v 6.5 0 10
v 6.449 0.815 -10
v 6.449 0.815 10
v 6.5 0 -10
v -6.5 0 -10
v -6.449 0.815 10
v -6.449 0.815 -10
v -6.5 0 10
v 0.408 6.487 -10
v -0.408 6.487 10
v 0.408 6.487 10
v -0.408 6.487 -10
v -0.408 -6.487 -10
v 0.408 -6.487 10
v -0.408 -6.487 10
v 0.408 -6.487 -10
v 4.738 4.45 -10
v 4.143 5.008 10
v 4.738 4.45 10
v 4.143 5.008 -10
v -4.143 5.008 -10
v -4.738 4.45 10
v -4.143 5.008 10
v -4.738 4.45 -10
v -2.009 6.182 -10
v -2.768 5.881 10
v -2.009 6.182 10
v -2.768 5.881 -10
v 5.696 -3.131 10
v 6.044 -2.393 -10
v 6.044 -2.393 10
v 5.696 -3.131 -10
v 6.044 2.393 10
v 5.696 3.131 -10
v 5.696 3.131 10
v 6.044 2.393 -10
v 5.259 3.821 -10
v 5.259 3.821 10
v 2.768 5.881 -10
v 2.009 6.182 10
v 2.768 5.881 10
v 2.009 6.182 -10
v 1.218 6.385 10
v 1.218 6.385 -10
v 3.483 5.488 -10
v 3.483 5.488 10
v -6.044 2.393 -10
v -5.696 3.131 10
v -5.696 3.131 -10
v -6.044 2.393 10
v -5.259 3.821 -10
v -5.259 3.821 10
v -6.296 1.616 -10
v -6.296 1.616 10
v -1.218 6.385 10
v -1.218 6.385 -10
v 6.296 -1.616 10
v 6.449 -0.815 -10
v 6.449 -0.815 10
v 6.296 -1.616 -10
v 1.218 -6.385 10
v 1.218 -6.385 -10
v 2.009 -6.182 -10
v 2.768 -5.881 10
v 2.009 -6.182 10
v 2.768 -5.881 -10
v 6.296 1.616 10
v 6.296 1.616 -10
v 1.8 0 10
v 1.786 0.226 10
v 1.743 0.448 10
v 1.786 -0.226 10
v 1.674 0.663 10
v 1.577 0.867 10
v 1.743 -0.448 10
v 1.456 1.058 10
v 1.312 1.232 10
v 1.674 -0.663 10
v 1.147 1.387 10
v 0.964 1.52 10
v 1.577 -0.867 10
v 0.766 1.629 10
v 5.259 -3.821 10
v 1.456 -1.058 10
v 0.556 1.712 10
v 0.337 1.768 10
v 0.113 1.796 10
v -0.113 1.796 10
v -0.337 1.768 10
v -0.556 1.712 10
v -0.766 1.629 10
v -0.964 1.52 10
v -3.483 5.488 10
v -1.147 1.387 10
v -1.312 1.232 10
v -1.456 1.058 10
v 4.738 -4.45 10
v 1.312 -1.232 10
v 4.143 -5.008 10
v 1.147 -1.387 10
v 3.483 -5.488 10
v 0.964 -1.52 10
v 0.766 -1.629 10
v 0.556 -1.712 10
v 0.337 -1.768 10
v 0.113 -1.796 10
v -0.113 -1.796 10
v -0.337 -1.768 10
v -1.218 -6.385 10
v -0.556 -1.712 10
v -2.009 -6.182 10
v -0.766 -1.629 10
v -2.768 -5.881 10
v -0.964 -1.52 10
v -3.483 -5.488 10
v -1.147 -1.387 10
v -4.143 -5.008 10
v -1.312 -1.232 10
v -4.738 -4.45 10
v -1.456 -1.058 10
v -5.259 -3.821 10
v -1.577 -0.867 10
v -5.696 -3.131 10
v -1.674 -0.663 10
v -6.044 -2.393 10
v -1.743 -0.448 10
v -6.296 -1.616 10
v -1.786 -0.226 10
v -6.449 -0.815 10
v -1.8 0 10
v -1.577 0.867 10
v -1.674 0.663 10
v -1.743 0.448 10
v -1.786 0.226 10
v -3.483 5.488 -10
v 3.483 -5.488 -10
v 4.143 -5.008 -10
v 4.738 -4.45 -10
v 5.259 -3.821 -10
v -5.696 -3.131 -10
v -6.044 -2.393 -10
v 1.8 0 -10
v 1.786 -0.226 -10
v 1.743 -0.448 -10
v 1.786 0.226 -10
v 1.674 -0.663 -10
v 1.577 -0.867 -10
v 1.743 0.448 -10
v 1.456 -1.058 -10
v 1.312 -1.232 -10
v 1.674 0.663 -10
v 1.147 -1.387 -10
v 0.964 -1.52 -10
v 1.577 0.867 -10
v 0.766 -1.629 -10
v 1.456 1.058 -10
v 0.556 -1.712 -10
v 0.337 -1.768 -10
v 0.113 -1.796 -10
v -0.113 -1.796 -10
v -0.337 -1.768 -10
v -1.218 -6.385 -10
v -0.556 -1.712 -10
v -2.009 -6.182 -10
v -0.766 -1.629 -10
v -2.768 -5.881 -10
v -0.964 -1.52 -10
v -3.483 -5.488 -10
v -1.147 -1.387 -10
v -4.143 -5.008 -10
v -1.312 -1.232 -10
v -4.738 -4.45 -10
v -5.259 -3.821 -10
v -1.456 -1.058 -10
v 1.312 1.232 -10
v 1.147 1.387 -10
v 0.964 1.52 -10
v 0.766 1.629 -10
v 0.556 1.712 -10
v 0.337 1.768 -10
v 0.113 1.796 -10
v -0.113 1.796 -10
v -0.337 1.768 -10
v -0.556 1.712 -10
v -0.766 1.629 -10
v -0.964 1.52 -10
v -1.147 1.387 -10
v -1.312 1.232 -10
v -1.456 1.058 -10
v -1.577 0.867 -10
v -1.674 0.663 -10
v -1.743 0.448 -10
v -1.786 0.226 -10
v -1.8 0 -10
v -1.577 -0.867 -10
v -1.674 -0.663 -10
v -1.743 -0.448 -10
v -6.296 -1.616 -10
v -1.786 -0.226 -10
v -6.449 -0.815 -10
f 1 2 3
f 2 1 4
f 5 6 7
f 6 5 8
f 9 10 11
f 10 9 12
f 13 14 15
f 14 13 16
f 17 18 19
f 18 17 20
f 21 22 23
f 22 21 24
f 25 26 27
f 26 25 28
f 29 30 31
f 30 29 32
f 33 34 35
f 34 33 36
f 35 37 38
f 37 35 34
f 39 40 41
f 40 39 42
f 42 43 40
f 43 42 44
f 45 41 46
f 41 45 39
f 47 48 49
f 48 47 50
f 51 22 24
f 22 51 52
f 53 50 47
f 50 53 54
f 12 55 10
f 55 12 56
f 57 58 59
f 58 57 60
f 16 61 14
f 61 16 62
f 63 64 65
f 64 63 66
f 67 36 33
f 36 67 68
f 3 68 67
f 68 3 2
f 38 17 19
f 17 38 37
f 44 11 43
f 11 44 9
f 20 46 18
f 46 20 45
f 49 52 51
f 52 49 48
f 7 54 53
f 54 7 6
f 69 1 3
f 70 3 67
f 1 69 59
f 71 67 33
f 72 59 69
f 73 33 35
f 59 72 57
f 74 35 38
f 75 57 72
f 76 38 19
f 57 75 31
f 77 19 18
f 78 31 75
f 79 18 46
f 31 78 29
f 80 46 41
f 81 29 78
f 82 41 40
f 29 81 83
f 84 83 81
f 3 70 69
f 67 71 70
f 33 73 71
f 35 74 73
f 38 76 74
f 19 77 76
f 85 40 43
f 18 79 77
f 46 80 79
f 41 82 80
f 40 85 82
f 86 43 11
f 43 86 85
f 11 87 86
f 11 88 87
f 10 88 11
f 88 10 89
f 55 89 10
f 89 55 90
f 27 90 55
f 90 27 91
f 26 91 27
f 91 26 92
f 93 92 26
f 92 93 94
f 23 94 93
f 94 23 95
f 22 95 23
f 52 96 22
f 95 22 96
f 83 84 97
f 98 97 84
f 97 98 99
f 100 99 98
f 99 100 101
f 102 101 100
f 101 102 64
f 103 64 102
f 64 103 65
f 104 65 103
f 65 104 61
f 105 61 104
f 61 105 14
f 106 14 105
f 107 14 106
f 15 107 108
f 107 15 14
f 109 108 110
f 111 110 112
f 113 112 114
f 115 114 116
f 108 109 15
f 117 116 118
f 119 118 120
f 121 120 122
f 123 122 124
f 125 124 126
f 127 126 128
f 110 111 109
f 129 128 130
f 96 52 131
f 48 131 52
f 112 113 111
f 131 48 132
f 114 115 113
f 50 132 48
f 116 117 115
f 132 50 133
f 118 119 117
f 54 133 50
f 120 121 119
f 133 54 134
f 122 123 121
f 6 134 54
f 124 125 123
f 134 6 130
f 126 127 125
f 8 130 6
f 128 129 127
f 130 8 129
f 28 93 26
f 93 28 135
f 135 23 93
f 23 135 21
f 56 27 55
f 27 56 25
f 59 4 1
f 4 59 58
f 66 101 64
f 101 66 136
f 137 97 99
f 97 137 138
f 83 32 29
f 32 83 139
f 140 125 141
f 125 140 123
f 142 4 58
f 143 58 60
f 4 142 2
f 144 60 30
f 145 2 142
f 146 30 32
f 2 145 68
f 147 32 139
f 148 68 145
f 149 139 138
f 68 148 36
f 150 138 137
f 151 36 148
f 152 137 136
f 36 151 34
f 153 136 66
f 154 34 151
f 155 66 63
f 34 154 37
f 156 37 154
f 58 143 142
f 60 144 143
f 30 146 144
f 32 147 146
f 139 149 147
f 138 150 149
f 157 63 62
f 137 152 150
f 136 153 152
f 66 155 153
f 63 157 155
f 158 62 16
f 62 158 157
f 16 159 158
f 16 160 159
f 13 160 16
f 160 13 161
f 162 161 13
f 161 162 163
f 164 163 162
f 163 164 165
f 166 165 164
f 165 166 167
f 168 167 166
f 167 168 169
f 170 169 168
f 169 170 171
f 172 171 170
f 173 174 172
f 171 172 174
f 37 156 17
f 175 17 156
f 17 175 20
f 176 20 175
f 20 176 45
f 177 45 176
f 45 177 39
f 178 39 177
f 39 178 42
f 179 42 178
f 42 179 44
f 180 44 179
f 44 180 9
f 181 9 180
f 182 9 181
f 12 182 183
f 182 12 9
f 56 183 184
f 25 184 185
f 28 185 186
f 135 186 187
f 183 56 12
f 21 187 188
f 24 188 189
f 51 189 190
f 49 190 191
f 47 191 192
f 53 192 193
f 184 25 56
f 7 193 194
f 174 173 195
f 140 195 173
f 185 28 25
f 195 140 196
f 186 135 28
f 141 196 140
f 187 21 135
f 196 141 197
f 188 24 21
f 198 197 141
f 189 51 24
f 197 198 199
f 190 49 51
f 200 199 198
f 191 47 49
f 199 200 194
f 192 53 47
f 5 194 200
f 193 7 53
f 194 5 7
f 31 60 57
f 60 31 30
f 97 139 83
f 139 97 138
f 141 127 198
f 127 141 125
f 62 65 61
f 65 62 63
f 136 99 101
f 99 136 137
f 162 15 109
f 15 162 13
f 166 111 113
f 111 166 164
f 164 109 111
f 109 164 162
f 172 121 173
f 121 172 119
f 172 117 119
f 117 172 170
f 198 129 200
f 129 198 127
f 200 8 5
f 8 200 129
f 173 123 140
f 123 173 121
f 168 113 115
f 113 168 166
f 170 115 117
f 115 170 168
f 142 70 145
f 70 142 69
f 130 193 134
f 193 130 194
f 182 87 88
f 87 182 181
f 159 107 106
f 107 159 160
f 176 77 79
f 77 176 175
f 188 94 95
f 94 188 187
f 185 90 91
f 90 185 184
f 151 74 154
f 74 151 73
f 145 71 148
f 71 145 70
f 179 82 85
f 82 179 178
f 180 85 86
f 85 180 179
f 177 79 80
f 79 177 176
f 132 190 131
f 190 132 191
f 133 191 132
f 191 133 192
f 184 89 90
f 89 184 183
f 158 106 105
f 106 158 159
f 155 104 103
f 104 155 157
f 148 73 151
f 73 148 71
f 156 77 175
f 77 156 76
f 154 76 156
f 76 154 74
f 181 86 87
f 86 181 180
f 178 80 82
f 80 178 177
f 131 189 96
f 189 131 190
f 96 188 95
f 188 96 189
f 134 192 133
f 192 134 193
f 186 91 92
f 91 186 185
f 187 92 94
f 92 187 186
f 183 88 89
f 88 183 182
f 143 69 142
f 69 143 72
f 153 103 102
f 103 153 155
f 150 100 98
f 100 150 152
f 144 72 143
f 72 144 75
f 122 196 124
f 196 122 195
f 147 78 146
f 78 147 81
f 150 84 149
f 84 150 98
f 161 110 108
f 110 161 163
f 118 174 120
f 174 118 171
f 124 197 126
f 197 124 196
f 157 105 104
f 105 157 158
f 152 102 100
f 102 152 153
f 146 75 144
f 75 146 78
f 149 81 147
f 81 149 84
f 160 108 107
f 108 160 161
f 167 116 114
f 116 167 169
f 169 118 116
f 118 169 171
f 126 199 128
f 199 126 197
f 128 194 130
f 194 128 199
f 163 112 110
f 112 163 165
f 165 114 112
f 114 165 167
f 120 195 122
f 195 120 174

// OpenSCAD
$fn = 50;


difference() {
	union() {
		translate(v = [0, 0, -10.0000000000]) {
			cylinder(h = 20, r = 6.5000000000);
		}
	}
	union() {
		translate(v = [0, 0, -100.0000000000]) {
			cylinder(h = 200, r = 1.8000000000);
		}
	}
}
